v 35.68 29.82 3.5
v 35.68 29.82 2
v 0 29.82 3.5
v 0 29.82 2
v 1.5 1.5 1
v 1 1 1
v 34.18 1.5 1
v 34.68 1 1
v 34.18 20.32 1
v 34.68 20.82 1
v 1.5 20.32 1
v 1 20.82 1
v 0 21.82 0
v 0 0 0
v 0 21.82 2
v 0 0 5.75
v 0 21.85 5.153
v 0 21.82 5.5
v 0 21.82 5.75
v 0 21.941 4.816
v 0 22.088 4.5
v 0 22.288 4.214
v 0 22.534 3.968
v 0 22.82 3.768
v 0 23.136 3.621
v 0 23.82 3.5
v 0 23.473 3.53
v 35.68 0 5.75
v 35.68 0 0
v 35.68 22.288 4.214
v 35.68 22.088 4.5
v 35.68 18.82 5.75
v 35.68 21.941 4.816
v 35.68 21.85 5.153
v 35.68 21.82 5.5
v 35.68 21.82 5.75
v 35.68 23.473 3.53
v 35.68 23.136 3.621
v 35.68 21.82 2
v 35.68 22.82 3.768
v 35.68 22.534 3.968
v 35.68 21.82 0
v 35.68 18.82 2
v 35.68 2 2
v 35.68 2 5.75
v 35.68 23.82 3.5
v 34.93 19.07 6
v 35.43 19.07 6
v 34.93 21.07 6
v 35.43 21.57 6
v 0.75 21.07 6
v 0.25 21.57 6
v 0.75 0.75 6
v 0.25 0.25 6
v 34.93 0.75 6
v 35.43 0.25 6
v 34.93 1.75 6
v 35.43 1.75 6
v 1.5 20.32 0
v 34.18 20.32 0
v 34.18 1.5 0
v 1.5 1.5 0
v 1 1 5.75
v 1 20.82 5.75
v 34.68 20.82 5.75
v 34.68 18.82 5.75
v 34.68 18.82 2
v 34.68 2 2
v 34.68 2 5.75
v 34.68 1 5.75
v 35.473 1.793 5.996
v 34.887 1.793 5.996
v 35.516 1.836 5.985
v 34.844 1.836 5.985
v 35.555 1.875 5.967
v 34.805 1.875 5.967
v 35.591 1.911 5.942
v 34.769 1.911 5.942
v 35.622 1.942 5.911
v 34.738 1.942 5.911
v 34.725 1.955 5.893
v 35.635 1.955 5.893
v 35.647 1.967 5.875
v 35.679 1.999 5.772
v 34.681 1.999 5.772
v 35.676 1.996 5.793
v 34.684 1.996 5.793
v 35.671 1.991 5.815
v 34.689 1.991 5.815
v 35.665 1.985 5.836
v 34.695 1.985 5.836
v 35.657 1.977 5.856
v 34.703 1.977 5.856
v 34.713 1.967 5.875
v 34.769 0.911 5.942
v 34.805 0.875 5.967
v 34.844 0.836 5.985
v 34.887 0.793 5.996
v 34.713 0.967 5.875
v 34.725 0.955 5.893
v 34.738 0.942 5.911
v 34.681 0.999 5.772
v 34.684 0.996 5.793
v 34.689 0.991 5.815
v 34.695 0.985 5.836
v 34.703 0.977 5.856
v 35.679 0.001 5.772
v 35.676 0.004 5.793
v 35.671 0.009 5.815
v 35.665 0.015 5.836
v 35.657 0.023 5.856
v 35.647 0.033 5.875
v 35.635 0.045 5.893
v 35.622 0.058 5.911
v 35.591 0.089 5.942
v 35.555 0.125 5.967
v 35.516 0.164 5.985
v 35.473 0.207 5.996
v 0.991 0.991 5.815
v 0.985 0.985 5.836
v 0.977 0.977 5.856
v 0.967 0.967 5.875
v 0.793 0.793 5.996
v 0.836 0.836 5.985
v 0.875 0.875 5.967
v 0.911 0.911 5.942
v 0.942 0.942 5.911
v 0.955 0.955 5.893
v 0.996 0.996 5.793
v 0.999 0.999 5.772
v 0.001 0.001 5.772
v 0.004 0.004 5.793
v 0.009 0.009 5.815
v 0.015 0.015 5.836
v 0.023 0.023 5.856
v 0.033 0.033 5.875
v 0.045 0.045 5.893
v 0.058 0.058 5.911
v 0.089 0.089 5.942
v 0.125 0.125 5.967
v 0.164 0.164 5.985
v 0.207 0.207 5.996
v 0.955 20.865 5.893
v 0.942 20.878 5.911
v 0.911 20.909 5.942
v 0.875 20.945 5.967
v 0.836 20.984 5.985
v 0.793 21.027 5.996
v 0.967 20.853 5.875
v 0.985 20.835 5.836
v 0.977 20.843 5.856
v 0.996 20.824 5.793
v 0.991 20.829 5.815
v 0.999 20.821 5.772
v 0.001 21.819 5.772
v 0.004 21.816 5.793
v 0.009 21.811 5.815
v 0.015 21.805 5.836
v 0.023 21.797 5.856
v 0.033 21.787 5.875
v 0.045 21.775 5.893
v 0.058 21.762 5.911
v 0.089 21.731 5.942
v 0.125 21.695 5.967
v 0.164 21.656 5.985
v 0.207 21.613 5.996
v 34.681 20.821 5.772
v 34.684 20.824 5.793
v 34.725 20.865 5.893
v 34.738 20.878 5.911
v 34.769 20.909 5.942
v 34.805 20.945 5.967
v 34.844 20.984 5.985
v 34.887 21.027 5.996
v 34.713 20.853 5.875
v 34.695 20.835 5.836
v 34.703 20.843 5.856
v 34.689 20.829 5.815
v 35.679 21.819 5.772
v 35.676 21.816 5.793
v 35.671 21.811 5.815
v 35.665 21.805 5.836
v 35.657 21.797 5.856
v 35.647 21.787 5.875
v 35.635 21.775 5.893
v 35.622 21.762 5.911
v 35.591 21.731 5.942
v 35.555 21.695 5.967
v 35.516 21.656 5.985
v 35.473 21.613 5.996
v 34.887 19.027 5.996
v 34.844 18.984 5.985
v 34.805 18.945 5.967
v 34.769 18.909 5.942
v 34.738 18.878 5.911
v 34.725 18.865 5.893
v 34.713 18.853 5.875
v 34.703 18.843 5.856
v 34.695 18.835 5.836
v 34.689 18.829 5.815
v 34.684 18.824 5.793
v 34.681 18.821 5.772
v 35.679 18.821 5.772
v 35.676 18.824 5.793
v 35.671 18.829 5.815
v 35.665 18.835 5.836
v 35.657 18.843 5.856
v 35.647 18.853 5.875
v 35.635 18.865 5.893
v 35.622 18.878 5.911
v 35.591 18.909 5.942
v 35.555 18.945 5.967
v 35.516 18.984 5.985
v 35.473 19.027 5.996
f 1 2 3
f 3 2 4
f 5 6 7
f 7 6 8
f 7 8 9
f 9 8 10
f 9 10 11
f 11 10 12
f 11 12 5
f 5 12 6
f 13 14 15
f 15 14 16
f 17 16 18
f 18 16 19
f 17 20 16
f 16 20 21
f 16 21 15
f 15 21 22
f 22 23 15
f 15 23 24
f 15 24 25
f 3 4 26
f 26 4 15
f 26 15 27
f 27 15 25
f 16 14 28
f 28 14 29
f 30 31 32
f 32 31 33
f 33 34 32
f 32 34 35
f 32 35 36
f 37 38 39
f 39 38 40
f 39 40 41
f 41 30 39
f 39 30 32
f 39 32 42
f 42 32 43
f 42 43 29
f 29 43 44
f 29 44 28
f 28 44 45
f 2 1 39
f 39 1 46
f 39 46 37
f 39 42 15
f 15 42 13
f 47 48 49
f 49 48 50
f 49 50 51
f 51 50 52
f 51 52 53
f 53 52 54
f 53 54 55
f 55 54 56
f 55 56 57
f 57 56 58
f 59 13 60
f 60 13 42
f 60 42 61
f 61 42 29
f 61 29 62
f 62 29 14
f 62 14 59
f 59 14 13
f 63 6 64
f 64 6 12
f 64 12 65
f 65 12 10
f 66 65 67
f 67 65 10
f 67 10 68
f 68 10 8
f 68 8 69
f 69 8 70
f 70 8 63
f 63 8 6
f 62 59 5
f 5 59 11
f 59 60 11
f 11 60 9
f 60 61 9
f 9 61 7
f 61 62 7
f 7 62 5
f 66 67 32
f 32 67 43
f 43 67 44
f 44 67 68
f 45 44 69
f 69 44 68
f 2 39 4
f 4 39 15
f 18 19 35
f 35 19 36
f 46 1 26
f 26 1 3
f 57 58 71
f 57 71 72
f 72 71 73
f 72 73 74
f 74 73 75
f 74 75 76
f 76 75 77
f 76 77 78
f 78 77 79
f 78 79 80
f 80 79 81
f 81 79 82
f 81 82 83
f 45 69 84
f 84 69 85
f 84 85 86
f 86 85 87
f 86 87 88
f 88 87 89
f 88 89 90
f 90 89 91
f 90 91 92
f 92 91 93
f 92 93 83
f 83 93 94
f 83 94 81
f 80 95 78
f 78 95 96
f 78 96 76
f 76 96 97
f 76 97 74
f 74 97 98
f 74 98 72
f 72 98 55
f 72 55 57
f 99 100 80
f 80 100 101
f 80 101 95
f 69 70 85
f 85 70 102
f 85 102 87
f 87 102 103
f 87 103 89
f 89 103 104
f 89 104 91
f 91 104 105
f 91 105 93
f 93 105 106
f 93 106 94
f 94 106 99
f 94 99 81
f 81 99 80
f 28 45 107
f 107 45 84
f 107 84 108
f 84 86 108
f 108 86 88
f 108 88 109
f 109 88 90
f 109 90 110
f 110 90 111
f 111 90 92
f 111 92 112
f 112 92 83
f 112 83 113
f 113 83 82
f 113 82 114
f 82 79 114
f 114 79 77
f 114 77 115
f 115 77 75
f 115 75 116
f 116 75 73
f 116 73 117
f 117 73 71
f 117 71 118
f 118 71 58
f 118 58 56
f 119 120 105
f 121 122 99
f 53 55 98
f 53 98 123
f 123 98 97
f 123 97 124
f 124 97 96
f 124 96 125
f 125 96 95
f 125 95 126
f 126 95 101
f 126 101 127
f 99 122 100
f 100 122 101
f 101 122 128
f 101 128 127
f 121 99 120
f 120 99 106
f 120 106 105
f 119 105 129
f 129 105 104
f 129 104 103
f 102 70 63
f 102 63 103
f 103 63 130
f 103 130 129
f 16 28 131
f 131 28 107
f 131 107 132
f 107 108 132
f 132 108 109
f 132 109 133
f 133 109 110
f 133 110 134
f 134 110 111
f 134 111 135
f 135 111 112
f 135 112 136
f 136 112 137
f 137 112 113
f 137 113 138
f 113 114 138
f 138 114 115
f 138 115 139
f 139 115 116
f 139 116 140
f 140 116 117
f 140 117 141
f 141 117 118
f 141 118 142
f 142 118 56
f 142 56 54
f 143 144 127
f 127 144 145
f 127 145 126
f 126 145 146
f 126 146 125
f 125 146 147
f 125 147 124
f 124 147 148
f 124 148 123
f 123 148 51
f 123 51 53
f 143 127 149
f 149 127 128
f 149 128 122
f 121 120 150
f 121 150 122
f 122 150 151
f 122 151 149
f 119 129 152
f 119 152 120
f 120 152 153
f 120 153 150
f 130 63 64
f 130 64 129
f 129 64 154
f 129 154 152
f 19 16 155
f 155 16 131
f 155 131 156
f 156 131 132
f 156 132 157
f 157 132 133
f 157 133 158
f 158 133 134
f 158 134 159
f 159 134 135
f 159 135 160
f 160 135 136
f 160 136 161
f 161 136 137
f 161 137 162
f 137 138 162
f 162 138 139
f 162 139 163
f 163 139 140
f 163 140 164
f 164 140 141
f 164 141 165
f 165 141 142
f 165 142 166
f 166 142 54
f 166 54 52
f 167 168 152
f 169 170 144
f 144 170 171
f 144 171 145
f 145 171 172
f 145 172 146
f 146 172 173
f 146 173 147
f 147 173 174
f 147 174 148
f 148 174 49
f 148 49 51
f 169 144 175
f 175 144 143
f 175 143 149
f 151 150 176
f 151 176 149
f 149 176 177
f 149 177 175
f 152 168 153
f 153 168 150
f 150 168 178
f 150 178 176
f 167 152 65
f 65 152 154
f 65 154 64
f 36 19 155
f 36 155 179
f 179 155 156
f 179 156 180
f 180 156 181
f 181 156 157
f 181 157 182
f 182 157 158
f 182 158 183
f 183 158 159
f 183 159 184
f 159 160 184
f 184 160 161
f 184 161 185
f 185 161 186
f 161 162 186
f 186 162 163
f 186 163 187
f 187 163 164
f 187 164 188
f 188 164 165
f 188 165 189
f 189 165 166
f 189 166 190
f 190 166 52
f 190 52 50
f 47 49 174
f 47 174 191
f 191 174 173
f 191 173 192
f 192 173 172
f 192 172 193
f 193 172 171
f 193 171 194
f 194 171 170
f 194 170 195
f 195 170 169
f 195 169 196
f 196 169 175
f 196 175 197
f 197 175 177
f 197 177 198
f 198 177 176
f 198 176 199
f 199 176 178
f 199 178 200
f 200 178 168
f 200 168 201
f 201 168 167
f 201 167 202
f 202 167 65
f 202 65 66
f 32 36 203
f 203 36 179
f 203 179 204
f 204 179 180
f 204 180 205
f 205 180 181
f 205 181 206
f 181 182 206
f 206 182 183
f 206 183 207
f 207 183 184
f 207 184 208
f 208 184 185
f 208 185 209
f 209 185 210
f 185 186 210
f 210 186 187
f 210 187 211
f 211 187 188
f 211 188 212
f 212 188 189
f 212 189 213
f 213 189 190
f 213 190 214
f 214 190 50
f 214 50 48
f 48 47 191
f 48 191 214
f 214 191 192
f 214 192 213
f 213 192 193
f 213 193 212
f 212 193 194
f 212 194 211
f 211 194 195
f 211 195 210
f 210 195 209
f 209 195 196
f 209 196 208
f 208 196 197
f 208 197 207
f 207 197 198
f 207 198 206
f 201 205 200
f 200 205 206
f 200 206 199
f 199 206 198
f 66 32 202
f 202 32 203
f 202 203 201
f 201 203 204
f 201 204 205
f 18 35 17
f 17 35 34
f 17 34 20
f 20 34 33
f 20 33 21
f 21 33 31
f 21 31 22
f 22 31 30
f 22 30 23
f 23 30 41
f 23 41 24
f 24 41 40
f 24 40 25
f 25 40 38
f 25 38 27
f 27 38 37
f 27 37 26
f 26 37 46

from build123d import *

# Parameters (mm, degrees)
ESQUISSE1_W              = 35.68
ESQUISSE1_H              = 21.82
BOSS_EXTRU_1_DEPTH       = 6
ESQUISSE2_W              = 33.68
ESQUISSE2_H              = 19.82
ENL_V_MAT_EXTRU_1_DEPTH  = 5
ESQUISSE3_W              = 32.68
ESQUISSE3_H              = 18.82
ENL_V_MAT_EXTRU_2_DEPTH  = 43.120954405
ESQUISSE4_W              = 4
ESQUISSE4_H              = 16.82
ENL_V_MAT_EXTRU_3_DEPTH  = 5
ESQUISSE6_W              = 35.68
ESQUISSE6_H              = 8
BOSS_EXTRU_2_DEPTH       = 4
ESQUISSE7_W              = 35.68
ESQUISSE7_H              = 8
ENL_V_MAT_EXTRU_12_DEPTH = 2.5
CONG_2_R                 = 0.25
CONG_3_R                 = 2


with BuildPart() as part:
    # Esquisse1 → Boss.-Extru.1 (new body)
    with BuildSketch(Plane.XY):
        with Locations((17.84, 10.91)):
            Rectangle(ESQUISSE1_W, ESQUISSE1_H)
    extrude(amount=BOSS_EXTRU_1_DEPTH)

    # Esquisse2 → Enlèv. mat.-Extru.1 (cut)
    with BuildSketch(Plane.XY.offset(6)):
        with Locations((17.84, 10.91)):
            Rectangle(ESQUISSE2_W, ESQUISSE2_H)
    extrude(amount=-ENL_V_MAT_EXTRU_1_DEPTH, mode=Mode.SUBTRACT)

    # Esquisse3 → Enlèv. mat.-Extru.2 (cut, through all)
    with BuildSketch(Plane.XY.offset(1)):
        with Locations((17.84, 10.91)):
            Rectangle(ESQUISSE3_W, ESQUISSE3_H)
    extrude(amount=-ENL_V_MAT_EXTRU_2_DEPTH, mode=Mode.SUBTRACT)

    # Esquisse4 → Enlèv. mat.-Extru.3 (cut)
    with BuildSketch(Plane(origin=(35.68, 0, 0), x_dir=(0, 0, -1), z_dir=(1, 0, 0))):
        with Locations((-4, 10.41)):
            Rectangle(ESQUISSE4_W, ESQUISSE4_H)
    extrude(amount=-ENL_V_MAT_EXTRU_3_DEPTH, mode=Mode.SUBTRACT)

    # Esquisse6 → Boss.-Extru.2 (add)
    with BuildSketch(Plane.XY.offset(6)):
        with Locations((17.84, 25.82)):
            Rectangle(ESQUISSE6_W, ESQUISSE6_H)
    extrude(amount=-BOSS_EXTRU_2_DEPTH)

    # Esquisse7 → Enlèv. mat.-Extru.12 (cut)
    with BuildSketch(Plane.XY.offset(6)):
        with Locations((17.84, 25.82)):
            Rectangle(ESQUISSE7_W, ESQUISSE7_H)
    extrude(amount=-ENL_V_MAT_EXTRU_12_DEPTH, mode=Mode.SUBTRACT)

    # Congé2
    cong_2_edges = [part.edges().sort_by_distance(p)[0] for p in [
        (35.68, 1, 6),
        (1, 10.91, 6),
        (17.84, 1, 6),
        (34.68, 1.5, 6),
        (17.84, 20.82, 6),
        (34.68, 19.82, 6),
        (35.68, 20.32, 6),
        (35.18, 2, 6),
        (35.18, 18.82, 6),
        (17.84, 0, 6),
        (0, 10.91, 6),
        (17.84, 21.82, 6),
    ]]
    fillet(cong_2_edges, radius=CONG_2_R)

    # Congé3
    cong_3_edges = [part.edges().sort_by_distance(p)[0] for p in [
        (17.84, 21.82, 3.5),
    ]]
    fillet(cong_3_edges, radius=CONG_3_R)


solid = part.part
